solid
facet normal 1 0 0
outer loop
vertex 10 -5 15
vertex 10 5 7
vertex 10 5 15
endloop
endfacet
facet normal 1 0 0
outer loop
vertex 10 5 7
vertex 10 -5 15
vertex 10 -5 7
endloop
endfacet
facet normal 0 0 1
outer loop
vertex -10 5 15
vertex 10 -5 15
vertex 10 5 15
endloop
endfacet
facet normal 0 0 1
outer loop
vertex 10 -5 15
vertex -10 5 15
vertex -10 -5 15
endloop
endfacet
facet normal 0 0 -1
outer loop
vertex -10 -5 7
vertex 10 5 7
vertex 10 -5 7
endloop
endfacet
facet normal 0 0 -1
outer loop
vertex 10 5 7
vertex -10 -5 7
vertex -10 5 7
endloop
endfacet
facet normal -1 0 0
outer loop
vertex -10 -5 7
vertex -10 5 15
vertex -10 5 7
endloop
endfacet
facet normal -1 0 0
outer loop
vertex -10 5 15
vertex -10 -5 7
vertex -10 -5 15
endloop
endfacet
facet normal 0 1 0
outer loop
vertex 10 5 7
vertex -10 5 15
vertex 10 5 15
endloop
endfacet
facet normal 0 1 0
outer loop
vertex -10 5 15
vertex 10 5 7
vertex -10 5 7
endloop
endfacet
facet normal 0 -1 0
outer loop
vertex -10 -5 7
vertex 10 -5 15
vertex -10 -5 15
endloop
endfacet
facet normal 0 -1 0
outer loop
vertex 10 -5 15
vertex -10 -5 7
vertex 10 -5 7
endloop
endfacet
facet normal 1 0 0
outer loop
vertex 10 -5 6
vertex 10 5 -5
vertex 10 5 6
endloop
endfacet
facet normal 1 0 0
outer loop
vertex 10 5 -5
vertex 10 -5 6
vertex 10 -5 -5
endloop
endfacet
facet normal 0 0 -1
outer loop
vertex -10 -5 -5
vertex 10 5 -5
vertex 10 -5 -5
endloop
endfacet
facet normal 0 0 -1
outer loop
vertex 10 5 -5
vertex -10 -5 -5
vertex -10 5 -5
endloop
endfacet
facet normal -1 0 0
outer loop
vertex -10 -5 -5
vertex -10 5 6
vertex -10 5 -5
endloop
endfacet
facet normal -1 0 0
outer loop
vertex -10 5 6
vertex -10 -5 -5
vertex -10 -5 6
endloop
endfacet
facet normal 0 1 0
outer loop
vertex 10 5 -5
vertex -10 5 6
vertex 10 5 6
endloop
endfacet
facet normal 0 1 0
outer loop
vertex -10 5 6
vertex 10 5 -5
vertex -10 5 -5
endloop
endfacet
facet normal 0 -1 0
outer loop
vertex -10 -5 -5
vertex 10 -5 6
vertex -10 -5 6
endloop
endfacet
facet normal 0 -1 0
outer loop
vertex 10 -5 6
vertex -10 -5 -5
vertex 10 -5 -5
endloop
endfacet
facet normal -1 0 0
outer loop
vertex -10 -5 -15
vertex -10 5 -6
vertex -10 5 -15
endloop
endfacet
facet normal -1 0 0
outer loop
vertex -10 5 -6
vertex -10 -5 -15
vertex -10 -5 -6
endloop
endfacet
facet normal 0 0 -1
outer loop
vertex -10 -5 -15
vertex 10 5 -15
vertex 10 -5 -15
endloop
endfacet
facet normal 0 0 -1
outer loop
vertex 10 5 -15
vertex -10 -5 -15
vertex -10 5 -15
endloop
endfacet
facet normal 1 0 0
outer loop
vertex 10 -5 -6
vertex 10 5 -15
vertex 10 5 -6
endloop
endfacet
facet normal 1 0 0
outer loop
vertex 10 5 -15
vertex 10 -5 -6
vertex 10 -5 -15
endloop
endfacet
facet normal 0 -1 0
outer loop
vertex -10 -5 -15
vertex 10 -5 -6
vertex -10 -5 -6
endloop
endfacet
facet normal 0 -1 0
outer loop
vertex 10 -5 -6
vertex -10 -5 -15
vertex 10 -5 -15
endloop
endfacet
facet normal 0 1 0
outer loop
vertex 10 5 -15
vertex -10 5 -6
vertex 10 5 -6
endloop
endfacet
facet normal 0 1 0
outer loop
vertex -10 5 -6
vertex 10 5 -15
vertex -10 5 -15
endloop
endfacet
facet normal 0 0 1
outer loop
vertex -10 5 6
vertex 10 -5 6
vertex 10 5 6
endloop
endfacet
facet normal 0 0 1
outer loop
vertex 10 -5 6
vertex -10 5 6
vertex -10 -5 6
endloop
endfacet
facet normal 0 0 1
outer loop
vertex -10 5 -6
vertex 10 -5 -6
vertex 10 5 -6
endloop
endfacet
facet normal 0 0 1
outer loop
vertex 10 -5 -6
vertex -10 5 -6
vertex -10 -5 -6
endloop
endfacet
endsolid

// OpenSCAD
// Parameters for dimensions
central_block_width = 20;
central_block_height = 10;
central_block_depth = 10;
v_notch_depth = 5;
v_notch_width = 10;

side_block_width = 20;
side_block_height = 8;
side_block_depth = 10;

spacer_block_width = 20;
spacer_block_height = 2;
spacer_block_depth = 10;

// Function to create a block with a V-shaped notch
module v_notched_block(width, height, depth, notch_width, notch_depth) {
    difference() {
        cube([width, depth, height], center = true);
        translate([-notch_width / 2, -depth / 2, -height / 2])
            polyhedron(
                points = [
                    [0, 0, 0],
                    [notch_width, 0, 0],
                    [notch_width / 2, 0, notch_depth]
                ],
                faces = [[0, 1, 2]]
            );
    }
}

// Central block
module central_block() {
    v_notched_block(
        central_block_width,
        central_block_height,
        central_block_depth,
        v_notch_width,
        v_notch_depth
    );
}

// Side block
module side_block() {
    v_notched_block(
        side_block_width,
        side_block_height,
        side_block_depth,
        v_notch_width,
        v_notch_depth
    );
}

// Spacer block
module spacer_block() {
    cube([spacer_block_width, spacer_block_depth, spacer_block_height], center = true);
}

// Assembly
module flexible_coupling() {
    translate([0, 0, side_block_height / 2 + spacer_block_height + central_block_height / 2])
        side_block();
    translate([0, 0, central_block_height / 2])
        spacer_block();
    translate([0, 0, 0])
        central_block();
    translate([0, 0, -central_block_height / 2 - spacer_block_height])
        spacer_block();
    translate([0, 0, -central_block_height / 2 - spacer_block_height - side_block_height / 2])
        rotate([0, 0, 180])
        side_block();
}

// Render the model
flexible_coupling();
